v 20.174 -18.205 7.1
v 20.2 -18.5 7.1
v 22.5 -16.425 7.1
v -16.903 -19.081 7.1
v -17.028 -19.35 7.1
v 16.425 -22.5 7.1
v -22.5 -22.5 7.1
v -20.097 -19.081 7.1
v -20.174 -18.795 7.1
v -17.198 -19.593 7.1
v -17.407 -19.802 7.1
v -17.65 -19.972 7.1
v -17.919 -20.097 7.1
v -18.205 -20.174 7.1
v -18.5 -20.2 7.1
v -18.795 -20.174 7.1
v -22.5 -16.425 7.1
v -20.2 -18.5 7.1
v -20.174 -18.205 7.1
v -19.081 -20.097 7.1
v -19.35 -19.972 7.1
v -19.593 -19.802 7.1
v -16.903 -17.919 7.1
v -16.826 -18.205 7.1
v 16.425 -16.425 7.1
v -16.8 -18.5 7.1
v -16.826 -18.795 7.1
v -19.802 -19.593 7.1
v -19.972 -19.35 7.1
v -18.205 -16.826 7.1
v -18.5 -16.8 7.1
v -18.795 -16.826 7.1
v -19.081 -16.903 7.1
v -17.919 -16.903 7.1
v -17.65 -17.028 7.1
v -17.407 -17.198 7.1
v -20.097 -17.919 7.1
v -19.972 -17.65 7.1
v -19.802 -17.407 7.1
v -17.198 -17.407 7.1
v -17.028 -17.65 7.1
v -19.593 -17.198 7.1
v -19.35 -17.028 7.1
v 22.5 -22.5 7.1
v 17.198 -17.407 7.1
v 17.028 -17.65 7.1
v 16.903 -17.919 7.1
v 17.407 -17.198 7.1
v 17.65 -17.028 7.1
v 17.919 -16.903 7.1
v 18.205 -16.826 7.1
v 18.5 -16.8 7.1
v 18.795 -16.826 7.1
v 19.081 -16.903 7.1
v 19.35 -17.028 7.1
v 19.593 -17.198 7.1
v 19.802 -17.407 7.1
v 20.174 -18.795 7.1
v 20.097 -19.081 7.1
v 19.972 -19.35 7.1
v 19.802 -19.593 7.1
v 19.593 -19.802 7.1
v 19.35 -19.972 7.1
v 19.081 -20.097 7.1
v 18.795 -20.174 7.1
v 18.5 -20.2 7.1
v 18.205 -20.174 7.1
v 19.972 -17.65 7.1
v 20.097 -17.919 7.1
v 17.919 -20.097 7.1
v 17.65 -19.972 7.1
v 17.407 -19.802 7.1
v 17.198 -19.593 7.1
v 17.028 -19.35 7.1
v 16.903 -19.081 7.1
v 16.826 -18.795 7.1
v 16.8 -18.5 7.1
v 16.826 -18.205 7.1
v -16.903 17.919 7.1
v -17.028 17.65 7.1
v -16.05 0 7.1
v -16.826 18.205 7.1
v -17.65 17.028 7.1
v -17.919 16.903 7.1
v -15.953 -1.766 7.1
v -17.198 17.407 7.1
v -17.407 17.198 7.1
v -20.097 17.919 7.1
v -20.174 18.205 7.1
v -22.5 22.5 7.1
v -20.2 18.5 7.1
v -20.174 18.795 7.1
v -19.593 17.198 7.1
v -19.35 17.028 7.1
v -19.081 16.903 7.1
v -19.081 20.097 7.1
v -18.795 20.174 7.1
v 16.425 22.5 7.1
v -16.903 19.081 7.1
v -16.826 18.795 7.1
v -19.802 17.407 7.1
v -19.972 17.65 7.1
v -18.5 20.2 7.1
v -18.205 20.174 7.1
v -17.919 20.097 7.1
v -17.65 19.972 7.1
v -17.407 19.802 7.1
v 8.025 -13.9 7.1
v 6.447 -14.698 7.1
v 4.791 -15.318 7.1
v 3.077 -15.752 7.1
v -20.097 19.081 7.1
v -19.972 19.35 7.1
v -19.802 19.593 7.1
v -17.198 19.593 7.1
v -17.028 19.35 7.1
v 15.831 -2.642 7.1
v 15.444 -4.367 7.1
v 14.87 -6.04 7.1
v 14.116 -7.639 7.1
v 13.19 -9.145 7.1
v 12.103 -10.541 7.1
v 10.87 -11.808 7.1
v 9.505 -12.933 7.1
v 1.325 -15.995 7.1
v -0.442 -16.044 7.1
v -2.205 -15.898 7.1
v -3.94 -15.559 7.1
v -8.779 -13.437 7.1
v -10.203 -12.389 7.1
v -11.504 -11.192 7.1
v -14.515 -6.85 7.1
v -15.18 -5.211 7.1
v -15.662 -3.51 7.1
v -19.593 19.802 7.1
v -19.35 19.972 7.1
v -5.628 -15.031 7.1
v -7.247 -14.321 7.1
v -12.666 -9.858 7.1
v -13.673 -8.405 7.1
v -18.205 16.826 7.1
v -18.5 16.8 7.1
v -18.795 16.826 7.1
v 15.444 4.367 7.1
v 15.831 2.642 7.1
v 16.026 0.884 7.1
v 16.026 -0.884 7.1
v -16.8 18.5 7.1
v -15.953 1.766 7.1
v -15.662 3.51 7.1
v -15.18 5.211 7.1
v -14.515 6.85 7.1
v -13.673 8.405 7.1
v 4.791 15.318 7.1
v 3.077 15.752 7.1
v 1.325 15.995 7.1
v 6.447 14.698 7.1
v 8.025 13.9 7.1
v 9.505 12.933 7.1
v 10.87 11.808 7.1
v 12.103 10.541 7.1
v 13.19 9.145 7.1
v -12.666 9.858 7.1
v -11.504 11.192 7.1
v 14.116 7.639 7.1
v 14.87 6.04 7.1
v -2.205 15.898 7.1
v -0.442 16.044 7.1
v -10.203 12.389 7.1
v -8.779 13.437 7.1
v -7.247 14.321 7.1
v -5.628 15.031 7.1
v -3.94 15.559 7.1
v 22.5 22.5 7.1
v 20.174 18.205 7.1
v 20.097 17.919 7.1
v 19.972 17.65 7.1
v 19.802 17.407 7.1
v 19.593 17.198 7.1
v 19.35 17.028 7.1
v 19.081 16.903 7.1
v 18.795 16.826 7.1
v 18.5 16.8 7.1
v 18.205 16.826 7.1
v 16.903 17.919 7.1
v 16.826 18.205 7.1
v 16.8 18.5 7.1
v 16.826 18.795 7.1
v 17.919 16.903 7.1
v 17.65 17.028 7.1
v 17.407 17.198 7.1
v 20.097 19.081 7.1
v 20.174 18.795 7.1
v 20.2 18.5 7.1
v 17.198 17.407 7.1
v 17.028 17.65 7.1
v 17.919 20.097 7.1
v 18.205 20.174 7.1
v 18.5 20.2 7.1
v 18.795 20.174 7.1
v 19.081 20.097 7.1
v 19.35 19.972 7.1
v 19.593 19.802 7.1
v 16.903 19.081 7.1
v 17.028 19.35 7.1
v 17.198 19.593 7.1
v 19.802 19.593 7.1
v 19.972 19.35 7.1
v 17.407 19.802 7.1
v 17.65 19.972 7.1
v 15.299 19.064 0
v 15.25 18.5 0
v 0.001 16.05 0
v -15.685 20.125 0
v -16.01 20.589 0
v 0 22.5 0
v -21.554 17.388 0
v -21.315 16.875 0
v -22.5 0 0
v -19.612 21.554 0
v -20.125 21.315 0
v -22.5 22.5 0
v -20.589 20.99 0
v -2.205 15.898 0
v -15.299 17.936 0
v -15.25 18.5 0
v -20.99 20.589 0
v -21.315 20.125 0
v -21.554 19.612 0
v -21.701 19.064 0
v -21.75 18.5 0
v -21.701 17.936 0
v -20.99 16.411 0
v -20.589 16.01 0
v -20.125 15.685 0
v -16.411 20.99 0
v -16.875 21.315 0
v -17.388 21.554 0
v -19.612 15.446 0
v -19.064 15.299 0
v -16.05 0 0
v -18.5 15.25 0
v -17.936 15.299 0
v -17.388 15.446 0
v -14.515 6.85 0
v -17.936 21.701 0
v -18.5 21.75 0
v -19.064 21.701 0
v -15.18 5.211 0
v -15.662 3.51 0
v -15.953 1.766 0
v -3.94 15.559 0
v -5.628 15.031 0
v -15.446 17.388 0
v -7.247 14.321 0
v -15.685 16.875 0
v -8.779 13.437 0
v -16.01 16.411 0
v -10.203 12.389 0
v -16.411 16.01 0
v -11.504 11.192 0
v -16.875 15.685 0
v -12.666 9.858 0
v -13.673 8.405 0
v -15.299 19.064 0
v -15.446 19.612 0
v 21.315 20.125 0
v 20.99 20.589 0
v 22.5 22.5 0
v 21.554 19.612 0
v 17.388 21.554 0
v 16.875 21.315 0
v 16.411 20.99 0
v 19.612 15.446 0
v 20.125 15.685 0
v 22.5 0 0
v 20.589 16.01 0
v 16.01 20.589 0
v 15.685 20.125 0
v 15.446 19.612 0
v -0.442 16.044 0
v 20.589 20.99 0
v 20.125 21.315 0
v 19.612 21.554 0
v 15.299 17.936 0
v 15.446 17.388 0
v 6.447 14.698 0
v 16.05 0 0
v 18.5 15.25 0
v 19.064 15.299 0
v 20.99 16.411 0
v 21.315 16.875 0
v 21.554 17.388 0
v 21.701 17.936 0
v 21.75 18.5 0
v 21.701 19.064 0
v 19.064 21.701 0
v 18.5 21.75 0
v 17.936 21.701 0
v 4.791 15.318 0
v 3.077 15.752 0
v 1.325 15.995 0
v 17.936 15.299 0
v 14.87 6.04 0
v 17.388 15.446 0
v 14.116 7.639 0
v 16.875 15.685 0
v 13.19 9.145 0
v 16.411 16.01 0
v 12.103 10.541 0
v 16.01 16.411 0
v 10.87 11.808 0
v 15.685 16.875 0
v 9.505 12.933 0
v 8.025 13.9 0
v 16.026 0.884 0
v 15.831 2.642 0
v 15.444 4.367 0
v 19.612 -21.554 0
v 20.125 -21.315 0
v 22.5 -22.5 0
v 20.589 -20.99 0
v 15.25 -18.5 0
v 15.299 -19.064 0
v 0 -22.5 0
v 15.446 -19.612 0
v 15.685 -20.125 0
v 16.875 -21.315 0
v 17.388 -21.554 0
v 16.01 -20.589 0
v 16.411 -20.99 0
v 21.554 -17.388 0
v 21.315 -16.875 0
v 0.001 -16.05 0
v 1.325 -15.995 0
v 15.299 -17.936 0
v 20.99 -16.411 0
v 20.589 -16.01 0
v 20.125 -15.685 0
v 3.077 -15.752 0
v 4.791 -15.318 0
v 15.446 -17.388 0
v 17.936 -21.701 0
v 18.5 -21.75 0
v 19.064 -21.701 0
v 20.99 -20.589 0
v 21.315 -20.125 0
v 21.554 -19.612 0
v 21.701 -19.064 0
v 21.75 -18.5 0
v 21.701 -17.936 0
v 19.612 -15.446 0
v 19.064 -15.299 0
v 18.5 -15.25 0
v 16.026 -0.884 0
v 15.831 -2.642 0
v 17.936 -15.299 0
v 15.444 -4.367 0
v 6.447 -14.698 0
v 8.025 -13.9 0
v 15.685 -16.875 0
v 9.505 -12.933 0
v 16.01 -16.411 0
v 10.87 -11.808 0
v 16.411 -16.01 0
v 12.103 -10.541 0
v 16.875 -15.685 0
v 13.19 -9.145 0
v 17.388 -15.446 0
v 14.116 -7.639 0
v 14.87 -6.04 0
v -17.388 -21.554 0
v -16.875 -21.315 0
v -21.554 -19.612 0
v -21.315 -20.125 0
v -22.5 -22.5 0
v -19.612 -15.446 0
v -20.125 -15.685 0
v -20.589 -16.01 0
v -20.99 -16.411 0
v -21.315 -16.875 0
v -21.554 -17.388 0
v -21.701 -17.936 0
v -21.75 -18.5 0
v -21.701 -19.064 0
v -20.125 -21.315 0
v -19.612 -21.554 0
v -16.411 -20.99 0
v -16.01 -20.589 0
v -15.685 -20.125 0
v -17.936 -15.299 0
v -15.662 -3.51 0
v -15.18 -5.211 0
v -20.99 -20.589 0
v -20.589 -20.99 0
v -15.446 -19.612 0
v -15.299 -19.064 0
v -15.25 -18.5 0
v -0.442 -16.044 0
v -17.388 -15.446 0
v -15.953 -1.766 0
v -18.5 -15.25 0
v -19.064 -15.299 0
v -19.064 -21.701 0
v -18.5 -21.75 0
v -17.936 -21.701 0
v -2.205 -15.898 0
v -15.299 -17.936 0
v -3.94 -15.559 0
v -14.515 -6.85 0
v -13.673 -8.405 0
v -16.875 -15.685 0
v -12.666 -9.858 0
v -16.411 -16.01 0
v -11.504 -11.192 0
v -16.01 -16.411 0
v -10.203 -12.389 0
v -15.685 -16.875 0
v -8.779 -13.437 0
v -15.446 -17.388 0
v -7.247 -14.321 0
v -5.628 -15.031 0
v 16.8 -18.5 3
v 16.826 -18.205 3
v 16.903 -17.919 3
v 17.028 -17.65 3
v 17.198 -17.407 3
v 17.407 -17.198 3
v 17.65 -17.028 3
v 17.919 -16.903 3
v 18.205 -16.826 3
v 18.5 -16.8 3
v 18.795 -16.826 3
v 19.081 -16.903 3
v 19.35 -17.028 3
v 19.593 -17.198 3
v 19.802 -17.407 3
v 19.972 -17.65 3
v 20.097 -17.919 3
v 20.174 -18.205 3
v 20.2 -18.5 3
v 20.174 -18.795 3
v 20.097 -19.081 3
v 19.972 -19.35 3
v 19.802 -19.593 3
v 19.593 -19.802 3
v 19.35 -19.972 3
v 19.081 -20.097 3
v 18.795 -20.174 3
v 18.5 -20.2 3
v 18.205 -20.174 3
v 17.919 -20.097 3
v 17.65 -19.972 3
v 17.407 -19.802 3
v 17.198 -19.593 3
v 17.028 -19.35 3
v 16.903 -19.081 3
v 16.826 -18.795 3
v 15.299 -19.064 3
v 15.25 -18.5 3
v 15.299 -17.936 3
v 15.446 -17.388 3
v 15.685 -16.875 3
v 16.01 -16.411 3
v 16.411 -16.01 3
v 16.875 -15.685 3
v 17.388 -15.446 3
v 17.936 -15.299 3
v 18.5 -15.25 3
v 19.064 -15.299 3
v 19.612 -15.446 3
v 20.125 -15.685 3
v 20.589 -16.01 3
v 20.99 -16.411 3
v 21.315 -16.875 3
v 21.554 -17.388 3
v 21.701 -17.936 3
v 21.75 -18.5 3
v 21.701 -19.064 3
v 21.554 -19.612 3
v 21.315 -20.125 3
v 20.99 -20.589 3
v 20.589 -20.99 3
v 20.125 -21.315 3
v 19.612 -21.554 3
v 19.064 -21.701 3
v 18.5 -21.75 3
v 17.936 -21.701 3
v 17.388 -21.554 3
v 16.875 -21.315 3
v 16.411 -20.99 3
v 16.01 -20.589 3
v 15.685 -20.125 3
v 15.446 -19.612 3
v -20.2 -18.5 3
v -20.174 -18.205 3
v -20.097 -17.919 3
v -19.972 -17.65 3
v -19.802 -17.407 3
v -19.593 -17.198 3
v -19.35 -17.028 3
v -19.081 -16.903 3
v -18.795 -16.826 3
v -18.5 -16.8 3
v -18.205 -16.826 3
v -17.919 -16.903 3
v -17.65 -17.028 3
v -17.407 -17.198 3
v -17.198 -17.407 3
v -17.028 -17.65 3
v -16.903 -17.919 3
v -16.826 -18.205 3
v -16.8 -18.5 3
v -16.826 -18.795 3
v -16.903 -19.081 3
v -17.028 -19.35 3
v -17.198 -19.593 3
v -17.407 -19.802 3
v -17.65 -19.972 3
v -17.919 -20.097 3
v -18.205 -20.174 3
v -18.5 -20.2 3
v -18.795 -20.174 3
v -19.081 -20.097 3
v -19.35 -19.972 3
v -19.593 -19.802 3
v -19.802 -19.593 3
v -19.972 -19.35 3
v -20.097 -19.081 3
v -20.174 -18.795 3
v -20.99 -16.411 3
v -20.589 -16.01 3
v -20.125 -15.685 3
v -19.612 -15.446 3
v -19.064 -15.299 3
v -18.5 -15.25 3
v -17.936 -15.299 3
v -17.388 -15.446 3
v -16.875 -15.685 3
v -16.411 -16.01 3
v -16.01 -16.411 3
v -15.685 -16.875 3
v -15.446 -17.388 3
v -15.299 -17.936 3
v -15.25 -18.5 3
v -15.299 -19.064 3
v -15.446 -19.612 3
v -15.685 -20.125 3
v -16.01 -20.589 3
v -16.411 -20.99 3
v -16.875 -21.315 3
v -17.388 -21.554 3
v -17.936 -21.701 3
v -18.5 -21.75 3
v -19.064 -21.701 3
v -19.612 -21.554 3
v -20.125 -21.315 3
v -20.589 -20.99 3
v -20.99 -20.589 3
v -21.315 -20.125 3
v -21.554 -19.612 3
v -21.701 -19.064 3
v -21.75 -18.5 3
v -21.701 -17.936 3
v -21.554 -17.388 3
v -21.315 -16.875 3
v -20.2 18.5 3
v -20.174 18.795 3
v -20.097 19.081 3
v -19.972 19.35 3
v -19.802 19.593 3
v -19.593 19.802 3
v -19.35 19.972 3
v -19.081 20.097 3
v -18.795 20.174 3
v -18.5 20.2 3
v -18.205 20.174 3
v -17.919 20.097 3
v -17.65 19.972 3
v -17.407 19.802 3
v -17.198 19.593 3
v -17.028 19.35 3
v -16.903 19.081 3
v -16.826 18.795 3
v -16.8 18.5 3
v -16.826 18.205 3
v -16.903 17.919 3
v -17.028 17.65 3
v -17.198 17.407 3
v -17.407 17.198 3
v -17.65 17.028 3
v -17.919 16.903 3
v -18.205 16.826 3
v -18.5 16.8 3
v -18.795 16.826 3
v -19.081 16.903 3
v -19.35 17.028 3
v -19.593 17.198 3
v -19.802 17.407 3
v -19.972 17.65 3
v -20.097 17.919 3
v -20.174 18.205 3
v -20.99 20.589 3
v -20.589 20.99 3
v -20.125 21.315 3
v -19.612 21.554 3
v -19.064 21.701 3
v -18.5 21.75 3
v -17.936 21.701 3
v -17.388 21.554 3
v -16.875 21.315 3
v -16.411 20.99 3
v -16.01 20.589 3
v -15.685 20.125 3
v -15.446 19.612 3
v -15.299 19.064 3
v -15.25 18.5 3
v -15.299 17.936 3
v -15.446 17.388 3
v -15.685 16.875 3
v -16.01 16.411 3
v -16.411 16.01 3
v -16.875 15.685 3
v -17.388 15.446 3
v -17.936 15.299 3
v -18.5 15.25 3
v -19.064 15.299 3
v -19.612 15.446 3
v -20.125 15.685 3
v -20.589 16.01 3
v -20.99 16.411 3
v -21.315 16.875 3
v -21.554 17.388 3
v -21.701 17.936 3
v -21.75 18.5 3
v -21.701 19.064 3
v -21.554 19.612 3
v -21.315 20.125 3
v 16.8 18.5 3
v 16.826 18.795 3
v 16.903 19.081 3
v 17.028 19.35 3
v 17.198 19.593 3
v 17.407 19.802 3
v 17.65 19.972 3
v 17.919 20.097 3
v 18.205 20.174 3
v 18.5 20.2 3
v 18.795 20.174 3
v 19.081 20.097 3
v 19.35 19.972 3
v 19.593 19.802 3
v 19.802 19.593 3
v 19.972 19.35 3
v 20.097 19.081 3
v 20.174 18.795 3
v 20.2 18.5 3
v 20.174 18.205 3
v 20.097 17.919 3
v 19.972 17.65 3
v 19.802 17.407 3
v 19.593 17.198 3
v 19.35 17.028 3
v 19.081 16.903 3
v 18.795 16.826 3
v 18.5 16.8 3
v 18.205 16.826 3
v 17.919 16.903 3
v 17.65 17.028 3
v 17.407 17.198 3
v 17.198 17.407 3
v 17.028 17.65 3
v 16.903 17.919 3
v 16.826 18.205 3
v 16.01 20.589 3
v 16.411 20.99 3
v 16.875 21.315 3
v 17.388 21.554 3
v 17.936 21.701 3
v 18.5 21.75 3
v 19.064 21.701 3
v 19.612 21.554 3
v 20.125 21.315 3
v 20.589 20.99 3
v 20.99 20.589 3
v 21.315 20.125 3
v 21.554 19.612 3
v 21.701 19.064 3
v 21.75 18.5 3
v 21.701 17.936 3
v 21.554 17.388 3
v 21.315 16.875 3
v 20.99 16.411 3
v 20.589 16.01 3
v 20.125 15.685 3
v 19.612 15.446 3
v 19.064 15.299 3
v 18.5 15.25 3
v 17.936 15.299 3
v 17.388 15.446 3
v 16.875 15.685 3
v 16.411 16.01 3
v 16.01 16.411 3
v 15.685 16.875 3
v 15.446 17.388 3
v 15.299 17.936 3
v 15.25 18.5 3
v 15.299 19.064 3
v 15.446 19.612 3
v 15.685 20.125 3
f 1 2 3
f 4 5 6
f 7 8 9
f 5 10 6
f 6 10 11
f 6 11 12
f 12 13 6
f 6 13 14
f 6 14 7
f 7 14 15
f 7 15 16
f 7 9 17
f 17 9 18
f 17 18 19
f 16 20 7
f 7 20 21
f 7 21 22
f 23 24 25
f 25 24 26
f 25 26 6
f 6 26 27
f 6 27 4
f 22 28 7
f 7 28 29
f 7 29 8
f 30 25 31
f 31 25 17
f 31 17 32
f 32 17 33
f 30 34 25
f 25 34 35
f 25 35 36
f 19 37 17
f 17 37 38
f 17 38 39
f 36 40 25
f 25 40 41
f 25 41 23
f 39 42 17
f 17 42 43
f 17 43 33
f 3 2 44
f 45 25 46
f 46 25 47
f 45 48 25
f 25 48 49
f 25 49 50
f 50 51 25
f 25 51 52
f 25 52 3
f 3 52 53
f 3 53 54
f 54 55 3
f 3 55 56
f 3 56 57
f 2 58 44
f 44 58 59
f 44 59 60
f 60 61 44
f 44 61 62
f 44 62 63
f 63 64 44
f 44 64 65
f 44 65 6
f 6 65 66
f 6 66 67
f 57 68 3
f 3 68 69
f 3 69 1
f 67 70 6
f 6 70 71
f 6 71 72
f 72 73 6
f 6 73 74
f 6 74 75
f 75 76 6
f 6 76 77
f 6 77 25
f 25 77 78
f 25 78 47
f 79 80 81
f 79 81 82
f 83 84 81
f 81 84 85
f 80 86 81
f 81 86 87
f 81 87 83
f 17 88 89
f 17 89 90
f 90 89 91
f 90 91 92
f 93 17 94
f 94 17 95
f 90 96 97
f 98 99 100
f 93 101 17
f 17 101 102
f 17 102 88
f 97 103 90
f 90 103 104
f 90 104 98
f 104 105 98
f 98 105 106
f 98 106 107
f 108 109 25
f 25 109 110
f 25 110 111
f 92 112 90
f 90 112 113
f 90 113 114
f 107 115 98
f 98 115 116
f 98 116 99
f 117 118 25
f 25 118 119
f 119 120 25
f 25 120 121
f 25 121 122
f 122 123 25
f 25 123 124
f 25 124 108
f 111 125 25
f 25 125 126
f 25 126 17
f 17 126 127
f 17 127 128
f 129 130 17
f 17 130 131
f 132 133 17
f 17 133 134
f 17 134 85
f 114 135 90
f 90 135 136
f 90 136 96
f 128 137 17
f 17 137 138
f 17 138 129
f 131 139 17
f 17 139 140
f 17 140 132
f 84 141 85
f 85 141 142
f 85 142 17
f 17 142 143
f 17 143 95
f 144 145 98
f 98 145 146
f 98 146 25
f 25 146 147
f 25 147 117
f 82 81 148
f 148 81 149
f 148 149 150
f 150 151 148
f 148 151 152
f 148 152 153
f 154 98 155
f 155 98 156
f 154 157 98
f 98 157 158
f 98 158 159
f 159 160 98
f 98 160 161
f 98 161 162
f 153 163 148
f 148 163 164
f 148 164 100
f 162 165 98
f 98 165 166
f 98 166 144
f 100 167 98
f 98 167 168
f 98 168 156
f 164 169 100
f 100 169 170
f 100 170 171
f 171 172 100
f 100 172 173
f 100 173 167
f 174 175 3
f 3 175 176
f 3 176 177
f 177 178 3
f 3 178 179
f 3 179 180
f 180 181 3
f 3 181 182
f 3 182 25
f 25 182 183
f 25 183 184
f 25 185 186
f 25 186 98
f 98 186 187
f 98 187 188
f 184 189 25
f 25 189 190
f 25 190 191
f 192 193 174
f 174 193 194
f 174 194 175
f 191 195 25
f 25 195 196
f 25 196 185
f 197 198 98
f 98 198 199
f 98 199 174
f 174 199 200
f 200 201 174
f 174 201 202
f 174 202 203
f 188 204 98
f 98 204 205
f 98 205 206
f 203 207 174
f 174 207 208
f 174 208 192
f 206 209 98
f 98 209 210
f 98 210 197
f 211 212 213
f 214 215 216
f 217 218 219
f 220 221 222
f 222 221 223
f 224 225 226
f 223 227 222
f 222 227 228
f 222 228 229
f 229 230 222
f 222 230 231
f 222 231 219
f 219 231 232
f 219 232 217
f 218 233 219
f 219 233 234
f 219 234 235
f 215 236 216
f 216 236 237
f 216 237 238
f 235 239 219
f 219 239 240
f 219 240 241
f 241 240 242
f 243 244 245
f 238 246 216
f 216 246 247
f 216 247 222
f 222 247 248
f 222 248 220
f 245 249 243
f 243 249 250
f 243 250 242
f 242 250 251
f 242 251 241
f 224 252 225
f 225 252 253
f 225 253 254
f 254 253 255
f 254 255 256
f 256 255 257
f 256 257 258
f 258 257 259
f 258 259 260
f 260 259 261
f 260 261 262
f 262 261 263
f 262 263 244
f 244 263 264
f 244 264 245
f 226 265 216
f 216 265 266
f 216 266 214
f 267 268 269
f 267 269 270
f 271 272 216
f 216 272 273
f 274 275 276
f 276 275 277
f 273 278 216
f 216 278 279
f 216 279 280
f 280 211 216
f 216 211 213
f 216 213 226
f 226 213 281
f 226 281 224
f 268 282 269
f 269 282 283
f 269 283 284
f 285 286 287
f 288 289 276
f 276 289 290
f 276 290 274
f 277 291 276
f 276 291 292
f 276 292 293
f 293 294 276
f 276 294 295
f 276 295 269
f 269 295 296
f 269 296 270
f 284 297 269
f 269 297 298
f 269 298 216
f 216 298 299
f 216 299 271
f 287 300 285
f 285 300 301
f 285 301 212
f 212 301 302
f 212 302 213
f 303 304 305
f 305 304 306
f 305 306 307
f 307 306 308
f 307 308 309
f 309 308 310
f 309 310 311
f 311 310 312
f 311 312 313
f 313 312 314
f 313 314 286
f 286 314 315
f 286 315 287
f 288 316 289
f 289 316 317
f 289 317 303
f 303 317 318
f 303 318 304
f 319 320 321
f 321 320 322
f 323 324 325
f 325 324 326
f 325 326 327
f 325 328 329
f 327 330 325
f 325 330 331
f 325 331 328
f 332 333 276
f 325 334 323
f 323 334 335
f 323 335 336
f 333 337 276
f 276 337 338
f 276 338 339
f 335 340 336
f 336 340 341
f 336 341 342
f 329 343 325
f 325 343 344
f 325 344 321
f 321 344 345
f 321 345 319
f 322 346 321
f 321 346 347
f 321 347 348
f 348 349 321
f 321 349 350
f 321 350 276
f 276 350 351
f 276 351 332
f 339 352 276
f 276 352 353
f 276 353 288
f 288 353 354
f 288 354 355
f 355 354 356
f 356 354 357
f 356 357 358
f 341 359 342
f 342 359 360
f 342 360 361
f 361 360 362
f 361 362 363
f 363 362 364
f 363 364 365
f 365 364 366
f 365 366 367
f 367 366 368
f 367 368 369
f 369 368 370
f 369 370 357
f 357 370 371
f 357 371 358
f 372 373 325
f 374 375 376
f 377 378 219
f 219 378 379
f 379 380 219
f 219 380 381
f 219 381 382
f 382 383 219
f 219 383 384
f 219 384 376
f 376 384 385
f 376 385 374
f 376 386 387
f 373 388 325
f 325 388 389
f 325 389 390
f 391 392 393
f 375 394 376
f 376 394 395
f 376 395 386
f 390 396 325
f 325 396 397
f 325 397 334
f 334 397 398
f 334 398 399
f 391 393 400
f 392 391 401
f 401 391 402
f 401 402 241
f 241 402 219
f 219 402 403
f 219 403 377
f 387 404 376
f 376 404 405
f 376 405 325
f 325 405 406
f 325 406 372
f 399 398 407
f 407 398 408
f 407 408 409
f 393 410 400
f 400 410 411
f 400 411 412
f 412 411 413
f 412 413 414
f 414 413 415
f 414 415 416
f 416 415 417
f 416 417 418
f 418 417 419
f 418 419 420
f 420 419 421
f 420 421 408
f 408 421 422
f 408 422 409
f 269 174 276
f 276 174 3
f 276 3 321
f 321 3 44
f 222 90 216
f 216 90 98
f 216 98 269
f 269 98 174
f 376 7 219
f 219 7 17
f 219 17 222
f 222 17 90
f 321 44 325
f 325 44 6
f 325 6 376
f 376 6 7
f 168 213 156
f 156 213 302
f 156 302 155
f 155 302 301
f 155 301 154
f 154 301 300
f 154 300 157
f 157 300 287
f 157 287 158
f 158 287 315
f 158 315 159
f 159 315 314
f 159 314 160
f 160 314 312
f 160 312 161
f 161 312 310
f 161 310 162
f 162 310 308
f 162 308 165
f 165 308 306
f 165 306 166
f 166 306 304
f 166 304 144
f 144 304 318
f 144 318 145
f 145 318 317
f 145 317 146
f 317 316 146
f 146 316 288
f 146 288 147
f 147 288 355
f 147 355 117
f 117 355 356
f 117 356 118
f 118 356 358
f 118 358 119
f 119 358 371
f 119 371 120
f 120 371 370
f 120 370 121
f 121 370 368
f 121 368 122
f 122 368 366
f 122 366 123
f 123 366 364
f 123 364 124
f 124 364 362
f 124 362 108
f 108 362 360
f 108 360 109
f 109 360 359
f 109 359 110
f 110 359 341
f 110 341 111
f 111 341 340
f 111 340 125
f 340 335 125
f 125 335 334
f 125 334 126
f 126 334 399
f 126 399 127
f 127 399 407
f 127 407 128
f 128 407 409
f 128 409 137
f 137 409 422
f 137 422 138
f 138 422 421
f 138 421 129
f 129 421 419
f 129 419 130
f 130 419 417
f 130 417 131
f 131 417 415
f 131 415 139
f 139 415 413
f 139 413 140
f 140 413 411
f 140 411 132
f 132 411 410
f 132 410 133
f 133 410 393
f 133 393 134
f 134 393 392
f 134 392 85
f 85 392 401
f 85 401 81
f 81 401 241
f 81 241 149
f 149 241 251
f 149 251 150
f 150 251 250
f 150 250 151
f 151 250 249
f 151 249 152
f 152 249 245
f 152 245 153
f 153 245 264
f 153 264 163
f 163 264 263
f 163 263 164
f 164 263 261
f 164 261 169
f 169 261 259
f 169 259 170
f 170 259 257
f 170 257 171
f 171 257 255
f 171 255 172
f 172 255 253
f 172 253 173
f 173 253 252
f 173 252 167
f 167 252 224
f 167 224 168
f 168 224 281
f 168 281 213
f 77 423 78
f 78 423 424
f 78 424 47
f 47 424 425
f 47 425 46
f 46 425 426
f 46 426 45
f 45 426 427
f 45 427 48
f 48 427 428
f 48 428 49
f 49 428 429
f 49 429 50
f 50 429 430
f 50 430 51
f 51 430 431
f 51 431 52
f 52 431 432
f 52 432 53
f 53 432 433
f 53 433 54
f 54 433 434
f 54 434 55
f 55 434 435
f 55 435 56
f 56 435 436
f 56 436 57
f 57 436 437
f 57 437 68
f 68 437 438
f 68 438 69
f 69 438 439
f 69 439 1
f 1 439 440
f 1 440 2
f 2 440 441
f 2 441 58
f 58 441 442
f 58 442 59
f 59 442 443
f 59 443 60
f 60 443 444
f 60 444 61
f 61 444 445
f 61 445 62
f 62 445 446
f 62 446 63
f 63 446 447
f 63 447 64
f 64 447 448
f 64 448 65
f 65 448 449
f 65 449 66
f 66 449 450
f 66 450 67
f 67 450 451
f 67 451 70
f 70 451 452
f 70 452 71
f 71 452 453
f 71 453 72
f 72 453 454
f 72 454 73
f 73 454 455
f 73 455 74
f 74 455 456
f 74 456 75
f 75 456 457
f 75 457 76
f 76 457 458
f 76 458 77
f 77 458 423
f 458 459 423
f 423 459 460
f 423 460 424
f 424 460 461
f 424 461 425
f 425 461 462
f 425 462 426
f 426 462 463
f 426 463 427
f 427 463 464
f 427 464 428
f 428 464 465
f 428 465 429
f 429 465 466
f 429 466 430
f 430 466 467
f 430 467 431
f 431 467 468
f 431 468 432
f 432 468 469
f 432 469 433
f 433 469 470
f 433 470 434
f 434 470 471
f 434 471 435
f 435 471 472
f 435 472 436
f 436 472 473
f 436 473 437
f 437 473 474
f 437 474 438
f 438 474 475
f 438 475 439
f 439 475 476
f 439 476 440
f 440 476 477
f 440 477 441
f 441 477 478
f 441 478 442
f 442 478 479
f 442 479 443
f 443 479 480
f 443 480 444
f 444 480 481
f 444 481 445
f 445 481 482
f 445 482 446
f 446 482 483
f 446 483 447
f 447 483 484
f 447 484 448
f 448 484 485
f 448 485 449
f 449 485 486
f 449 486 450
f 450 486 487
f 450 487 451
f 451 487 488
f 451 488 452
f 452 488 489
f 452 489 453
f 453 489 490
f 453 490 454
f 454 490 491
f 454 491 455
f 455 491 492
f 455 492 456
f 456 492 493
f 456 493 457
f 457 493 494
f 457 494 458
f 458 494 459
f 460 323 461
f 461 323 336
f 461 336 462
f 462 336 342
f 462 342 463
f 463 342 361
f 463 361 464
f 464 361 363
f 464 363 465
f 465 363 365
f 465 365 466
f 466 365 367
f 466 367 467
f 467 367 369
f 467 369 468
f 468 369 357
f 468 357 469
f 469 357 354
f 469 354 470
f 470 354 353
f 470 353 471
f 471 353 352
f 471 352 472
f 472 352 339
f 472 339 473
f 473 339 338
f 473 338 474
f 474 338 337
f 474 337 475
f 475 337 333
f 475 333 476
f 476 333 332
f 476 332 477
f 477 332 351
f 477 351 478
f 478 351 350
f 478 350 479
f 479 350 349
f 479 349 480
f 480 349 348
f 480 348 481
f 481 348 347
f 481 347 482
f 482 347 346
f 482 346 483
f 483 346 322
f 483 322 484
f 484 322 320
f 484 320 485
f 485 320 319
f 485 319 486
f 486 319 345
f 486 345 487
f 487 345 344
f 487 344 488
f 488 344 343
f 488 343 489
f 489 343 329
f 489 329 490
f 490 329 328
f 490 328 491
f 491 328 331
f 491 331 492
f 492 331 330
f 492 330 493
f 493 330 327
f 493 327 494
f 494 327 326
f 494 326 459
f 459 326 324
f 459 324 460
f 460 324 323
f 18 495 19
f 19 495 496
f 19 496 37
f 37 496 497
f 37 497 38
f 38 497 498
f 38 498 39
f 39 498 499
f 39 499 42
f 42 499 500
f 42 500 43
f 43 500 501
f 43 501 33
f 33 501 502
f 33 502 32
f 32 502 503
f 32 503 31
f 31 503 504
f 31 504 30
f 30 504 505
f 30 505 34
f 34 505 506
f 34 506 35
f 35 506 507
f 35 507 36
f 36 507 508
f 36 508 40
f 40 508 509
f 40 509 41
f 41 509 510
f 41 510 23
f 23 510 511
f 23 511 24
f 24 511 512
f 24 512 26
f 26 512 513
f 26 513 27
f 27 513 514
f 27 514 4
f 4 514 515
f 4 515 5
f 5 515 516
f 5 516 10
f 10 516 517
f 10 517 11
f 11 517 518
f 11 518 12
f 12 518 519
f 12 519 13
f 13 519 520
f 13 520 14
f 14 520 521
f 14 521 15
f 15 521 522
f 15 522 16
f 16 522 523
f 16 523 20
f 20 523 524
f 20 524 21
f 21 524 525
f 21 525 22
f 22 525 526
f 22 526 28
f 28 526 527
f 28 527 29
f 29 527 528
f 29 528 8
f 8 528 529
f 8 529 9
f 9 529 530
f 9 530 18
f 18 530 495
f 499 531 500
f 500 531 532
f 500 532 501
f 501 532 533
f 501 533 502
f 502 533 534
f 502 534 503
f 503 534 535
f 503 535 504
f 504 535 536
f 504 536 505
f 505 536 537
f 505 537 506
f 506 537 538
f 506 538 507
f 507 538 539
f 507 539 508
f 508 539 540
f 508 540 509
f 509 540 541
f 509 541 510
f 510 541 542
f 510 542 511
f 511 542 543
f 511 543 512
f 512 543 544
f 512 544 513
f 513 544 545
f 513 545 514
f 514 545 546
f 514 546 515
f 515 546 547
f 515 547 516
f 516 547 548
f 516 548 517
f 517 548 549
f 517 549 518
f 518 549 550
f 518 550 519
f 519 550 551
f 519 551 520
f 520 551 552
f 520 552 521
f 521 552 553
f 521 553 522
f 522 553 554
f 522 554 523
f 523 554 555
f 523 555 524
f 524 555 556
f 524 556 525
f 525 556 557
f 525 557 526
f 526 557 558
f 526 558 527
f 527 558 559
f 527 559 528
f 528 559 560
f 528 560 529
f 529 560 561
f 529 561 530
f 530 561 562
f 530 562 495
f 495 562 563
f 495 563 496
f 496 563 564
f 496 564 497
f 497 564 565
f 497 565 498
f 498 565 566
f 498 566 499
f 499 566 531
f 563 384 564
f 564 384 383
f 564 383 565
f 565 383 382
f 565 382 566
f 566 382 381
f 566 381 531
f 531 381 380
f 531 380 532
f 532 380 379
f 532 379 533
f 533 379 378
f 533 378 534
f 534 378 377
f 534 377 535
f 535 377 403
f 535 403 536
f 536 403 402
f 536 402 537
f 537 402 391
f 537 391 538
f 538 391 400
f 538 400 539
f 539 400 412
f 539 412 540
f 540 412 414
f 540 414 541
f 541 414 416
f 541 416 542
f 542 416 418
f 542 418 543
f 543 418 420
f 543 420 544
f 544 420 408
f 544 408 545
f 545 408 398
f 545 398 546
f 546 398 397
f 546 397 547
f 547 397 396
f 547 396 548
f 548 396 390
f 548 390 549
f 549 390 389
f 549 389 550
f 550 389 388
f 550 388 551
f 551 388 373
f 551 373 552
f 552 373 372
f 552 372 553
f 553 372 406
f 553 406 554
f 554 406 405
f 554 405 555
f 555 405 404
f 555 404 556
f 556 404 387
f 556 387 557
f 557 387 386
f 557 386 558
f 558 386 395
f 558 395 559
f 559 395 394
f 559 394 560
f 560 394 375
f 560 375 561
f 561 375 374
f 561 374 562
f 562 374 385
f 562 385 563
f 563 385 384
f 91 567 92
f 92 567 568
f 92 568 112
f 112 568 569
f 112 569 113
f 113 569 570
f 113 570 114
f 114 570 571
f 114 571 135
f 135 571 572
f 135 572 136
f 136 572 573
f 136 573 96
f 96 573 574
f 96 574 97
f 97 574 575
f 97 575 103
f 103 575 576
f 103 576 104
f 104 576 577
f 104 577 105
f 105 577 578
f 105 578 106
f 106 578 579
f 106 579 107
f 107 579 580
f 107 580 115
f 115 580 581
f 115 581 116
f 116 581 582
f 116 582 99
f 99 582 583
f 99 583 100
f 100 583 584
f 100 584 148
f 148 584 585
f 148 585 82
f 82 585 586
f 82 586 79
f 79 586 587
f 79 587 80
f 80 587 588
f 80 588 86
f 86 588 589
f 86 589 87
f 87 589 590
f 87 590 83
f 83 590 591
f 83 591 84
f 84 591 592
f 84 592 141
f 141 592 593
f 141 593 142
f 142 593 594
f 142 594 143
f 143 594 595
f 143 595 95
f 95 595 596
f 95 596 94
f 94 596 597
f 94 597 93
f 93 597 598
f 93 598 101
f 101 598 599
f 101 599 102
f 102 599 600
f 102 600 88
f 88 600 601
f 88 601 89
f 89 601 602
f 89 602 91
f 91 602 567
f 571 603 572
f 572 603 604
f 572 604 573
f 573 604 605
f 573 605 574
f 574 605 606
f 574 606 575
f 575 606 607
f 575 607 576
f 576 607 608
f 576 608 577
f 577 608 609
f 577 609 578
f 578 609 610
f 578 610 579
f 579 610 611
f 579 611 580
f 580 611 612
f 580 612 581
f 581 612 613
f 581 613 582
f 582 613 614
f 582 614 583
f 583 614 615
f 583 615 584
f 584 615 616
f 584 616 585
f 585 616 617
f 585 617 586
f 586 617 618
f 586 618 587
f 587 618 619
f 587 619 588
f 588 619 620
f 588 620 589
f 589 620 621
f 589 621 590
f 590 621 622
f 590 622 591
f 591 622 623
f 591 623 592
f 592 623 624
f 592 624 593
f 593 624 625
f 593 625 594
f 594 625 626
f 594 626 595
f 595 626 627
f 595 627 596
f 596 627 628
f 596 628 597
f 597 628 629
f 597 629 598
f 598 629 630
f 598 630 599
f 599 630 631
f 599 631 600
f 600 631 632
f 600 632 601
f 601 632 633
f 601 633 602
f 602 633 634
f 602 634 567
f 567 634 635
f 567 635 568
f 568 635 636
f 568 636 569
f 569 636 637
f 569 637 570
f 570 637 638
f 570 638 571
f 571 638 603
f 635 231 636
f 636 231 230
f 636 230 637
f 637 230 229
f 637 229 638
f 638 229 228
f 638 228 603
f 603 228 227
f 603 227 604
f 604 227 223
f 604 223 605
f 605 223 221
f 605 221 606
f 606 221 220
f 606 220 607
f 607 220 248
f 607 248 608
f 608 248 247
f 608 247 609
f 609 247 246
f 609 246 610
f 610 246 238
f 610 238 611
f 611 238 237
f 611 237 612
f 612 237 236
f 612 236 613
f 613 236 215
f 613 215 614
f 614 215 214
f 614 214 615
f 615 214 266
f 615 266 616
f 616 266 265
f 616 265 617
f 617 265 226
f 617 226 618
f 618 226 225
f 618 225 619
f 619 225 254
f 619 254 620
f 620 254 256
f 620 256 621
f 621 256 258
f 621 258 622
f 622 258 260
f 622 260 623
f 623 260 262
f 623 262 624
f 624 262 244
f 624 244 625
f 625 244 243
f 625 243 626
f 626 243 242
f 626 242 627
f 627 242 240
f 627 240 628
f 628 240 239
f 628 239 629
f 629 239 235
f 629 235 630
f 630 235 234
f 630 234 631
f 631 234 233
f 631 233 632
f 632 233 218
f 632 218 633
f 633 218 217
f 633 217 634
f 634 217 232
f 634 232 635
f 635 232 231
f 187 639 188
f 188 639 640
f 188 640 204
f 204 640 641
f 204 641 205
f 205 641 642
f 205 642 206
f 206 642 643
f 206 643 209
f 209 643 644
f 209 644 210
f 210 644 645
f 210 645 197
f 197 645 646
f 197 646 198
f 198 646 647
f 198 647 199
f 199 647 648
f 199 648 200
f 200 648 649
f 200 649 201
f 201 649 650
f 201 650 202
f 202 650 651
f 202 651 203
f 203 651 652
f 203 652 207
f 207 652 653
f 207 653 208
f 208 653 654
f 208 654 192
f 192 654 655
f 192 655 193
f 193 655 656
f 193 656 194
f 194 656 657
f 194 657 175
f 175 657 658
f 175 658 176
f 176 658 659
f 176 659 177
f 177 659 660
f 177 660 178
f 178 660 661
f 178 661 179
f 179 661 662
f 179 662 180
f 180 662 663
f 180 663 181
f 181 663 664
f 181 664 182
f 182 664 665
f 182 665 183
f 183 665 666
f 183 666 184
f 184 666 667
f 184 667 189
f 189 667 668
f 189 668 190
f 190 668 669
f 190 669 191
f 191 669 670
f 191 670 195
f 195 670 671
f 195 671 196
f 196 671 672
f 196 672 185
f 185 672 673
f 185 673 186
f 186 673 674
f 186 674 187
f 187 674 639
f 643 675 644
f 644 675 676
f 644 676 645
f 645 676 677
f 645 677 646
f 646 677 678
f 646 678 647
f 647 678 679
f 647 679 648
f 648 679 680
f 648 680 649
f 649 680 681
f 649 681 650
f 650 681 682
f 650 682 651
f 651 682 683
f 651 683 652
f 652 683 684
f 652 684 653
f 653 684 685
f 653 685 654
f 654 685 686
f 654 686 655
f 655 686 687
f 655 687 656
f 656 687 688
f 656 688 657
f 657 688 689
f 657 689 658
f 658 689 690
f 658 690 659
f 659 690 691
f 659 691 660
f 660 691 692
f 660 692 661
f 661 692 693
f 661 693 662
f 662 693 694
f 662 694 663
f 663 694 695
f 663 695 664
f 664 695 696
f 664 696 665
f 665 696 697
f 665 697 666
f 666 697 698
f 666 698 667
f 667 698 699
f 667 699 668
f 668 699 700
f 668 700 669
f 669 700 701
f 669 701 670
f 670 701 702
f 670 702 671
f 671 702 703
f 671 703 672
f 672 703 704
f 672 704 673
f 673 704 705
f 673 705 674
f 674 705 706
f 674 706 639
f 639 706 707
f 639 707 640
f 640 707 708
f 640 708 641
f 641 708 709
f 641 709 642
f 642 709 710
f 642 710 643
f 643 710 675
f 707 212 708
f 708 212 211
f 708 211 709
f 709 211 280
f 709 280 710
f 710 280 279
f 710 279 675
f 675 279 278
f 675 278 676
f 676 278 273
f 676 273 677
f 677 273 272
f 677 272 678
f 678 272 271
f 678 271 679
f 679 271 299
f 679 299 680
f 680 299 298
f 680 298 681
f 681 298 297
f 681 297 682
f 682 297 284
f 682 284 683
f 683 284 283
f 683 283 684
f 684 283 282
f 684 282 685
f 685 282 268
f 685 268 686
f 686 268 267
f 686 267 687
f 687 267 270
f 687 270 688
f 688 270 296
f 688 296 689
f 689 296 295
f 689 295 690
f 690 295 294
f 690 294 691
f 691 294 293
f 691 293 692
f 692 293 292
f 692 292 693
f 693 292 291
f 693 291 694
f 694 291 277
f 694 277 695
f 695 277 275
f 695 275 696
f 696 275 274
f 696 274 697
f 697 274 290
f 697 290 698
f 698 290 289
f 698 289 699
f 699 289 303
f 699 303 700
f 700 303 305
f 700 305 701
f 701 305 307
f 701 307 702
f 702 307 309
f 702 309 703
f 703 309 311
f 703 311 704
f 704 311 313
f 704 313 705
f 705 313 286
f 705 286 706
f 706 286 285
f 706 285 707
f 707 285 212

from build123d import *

# Parameters (mm, degrees)
SKETCH1_W                      = 45
SKETCH1_H                      = 45
SKETCH1_R                      = 16
BOSS_EXTRUDE1_DEPTH            = 7.1
M3X0_5_TAPPED_HOLE1_D          = 2.5
M3X0_5_TAPPED_HOLE1_DEPTH      = 15
M3X0_5_TAPPED_HOLE1_TIP        = 0.751075774
CBORE_FOR_M3_SHCS1_D           = 3.4
CBORE_FOR_M3_SHCS1_DEPTH       = 7.1
CBORE_FOR_M3_SHCS1_CBORE_D     = 6.5
CBORE_FOR_M3_SHCS1_CBORE_DEPTH = 3
CBORE_FOR_M3_SHCS1_TIP         = 1.021463052
F_3D_PRINTING_TOLERANCE_BY     = 0.05


with BuildPart() as part:
    # Sketch1 → Boss-Extrude1 (new body)
    with BuildSketch(Plane.XY):
        Rectangle(SKETCH1_W, SKETCH1_H)
        Circle(SKETCH1_R, mode=Mode.SUBTRACT)
    extrude(amount=BOSS_EXTRUDE1_DEPTH)

    # M3x0.5 Tapped Hole1
    with Locations(Plane(origin=(0, 0, 0), x_dir=(-1, 0, 0), z_dir=(0, 0, -1))):
        with Locations((-18.5, 18.5), (-18.5, -18.5), (18.5, -18.5), (18.5, 18.5)):
            Hole(M3X0_5_TAPPED_HOLE1_D / 2, depth=M3X0_5_TAPPED_HOLE1_DEPTH)
            with Locations((0, 0, -(M3X0_5_TAPPED_HOLE1_DEPTH + M3X0_5_TAPPED_HOLE1_TIP / 2))):  # 118° drill point
                Cone(0, M3X0_5_TAPPED_HOLE1_D / 2, M3X0_5_TAPPED_HOLE1_TIP, mode=Mode.SUBTRACT)

    # CBORE for M3 SHCS1
    with Locations(Plane(origin=(0, 0, 0), x_dir=(-1, 0, 0), z_dir=(0, 0, -1))):
        with Locations((-18.5, 18.5), (18.5, 18.5), (18.5, -18.5), (-18.5, -18.5)):
            CounterBoreHole(CBORE_FOR_M3_SHCS1_D / 2, CBORE_FOR_M3_SHCS1_CBORE_D / 2, CBORE_FOR_M3_SHCS1_CBORE_DEPTH, depth=CBORE_FOR_M3_SHCS1_DEPTH)
            with Locations((0, 0, -(CBORE_FOR_M3_SHCS1_DEPTH + CBORE_FOR_M3_SHCS1_TIP / 2))):  # 118° drill point
                Cone(0, CBORE_FOR_M3_SHCS1_D / 2, CBORE_FOR_M3_SHCS1_TIP, mode=Mode.SUBTRACT)

    # 3D Printing Tolerance: a curved face moved inward by 0.05
    add(Solid.thicken(part.faces().sort_by_distance((-16, 0, 3.55))[0], -F_3D_PRINTING_TOLERANCE_BY), mode=Mode.SUBTRACT)


solid = part.part
